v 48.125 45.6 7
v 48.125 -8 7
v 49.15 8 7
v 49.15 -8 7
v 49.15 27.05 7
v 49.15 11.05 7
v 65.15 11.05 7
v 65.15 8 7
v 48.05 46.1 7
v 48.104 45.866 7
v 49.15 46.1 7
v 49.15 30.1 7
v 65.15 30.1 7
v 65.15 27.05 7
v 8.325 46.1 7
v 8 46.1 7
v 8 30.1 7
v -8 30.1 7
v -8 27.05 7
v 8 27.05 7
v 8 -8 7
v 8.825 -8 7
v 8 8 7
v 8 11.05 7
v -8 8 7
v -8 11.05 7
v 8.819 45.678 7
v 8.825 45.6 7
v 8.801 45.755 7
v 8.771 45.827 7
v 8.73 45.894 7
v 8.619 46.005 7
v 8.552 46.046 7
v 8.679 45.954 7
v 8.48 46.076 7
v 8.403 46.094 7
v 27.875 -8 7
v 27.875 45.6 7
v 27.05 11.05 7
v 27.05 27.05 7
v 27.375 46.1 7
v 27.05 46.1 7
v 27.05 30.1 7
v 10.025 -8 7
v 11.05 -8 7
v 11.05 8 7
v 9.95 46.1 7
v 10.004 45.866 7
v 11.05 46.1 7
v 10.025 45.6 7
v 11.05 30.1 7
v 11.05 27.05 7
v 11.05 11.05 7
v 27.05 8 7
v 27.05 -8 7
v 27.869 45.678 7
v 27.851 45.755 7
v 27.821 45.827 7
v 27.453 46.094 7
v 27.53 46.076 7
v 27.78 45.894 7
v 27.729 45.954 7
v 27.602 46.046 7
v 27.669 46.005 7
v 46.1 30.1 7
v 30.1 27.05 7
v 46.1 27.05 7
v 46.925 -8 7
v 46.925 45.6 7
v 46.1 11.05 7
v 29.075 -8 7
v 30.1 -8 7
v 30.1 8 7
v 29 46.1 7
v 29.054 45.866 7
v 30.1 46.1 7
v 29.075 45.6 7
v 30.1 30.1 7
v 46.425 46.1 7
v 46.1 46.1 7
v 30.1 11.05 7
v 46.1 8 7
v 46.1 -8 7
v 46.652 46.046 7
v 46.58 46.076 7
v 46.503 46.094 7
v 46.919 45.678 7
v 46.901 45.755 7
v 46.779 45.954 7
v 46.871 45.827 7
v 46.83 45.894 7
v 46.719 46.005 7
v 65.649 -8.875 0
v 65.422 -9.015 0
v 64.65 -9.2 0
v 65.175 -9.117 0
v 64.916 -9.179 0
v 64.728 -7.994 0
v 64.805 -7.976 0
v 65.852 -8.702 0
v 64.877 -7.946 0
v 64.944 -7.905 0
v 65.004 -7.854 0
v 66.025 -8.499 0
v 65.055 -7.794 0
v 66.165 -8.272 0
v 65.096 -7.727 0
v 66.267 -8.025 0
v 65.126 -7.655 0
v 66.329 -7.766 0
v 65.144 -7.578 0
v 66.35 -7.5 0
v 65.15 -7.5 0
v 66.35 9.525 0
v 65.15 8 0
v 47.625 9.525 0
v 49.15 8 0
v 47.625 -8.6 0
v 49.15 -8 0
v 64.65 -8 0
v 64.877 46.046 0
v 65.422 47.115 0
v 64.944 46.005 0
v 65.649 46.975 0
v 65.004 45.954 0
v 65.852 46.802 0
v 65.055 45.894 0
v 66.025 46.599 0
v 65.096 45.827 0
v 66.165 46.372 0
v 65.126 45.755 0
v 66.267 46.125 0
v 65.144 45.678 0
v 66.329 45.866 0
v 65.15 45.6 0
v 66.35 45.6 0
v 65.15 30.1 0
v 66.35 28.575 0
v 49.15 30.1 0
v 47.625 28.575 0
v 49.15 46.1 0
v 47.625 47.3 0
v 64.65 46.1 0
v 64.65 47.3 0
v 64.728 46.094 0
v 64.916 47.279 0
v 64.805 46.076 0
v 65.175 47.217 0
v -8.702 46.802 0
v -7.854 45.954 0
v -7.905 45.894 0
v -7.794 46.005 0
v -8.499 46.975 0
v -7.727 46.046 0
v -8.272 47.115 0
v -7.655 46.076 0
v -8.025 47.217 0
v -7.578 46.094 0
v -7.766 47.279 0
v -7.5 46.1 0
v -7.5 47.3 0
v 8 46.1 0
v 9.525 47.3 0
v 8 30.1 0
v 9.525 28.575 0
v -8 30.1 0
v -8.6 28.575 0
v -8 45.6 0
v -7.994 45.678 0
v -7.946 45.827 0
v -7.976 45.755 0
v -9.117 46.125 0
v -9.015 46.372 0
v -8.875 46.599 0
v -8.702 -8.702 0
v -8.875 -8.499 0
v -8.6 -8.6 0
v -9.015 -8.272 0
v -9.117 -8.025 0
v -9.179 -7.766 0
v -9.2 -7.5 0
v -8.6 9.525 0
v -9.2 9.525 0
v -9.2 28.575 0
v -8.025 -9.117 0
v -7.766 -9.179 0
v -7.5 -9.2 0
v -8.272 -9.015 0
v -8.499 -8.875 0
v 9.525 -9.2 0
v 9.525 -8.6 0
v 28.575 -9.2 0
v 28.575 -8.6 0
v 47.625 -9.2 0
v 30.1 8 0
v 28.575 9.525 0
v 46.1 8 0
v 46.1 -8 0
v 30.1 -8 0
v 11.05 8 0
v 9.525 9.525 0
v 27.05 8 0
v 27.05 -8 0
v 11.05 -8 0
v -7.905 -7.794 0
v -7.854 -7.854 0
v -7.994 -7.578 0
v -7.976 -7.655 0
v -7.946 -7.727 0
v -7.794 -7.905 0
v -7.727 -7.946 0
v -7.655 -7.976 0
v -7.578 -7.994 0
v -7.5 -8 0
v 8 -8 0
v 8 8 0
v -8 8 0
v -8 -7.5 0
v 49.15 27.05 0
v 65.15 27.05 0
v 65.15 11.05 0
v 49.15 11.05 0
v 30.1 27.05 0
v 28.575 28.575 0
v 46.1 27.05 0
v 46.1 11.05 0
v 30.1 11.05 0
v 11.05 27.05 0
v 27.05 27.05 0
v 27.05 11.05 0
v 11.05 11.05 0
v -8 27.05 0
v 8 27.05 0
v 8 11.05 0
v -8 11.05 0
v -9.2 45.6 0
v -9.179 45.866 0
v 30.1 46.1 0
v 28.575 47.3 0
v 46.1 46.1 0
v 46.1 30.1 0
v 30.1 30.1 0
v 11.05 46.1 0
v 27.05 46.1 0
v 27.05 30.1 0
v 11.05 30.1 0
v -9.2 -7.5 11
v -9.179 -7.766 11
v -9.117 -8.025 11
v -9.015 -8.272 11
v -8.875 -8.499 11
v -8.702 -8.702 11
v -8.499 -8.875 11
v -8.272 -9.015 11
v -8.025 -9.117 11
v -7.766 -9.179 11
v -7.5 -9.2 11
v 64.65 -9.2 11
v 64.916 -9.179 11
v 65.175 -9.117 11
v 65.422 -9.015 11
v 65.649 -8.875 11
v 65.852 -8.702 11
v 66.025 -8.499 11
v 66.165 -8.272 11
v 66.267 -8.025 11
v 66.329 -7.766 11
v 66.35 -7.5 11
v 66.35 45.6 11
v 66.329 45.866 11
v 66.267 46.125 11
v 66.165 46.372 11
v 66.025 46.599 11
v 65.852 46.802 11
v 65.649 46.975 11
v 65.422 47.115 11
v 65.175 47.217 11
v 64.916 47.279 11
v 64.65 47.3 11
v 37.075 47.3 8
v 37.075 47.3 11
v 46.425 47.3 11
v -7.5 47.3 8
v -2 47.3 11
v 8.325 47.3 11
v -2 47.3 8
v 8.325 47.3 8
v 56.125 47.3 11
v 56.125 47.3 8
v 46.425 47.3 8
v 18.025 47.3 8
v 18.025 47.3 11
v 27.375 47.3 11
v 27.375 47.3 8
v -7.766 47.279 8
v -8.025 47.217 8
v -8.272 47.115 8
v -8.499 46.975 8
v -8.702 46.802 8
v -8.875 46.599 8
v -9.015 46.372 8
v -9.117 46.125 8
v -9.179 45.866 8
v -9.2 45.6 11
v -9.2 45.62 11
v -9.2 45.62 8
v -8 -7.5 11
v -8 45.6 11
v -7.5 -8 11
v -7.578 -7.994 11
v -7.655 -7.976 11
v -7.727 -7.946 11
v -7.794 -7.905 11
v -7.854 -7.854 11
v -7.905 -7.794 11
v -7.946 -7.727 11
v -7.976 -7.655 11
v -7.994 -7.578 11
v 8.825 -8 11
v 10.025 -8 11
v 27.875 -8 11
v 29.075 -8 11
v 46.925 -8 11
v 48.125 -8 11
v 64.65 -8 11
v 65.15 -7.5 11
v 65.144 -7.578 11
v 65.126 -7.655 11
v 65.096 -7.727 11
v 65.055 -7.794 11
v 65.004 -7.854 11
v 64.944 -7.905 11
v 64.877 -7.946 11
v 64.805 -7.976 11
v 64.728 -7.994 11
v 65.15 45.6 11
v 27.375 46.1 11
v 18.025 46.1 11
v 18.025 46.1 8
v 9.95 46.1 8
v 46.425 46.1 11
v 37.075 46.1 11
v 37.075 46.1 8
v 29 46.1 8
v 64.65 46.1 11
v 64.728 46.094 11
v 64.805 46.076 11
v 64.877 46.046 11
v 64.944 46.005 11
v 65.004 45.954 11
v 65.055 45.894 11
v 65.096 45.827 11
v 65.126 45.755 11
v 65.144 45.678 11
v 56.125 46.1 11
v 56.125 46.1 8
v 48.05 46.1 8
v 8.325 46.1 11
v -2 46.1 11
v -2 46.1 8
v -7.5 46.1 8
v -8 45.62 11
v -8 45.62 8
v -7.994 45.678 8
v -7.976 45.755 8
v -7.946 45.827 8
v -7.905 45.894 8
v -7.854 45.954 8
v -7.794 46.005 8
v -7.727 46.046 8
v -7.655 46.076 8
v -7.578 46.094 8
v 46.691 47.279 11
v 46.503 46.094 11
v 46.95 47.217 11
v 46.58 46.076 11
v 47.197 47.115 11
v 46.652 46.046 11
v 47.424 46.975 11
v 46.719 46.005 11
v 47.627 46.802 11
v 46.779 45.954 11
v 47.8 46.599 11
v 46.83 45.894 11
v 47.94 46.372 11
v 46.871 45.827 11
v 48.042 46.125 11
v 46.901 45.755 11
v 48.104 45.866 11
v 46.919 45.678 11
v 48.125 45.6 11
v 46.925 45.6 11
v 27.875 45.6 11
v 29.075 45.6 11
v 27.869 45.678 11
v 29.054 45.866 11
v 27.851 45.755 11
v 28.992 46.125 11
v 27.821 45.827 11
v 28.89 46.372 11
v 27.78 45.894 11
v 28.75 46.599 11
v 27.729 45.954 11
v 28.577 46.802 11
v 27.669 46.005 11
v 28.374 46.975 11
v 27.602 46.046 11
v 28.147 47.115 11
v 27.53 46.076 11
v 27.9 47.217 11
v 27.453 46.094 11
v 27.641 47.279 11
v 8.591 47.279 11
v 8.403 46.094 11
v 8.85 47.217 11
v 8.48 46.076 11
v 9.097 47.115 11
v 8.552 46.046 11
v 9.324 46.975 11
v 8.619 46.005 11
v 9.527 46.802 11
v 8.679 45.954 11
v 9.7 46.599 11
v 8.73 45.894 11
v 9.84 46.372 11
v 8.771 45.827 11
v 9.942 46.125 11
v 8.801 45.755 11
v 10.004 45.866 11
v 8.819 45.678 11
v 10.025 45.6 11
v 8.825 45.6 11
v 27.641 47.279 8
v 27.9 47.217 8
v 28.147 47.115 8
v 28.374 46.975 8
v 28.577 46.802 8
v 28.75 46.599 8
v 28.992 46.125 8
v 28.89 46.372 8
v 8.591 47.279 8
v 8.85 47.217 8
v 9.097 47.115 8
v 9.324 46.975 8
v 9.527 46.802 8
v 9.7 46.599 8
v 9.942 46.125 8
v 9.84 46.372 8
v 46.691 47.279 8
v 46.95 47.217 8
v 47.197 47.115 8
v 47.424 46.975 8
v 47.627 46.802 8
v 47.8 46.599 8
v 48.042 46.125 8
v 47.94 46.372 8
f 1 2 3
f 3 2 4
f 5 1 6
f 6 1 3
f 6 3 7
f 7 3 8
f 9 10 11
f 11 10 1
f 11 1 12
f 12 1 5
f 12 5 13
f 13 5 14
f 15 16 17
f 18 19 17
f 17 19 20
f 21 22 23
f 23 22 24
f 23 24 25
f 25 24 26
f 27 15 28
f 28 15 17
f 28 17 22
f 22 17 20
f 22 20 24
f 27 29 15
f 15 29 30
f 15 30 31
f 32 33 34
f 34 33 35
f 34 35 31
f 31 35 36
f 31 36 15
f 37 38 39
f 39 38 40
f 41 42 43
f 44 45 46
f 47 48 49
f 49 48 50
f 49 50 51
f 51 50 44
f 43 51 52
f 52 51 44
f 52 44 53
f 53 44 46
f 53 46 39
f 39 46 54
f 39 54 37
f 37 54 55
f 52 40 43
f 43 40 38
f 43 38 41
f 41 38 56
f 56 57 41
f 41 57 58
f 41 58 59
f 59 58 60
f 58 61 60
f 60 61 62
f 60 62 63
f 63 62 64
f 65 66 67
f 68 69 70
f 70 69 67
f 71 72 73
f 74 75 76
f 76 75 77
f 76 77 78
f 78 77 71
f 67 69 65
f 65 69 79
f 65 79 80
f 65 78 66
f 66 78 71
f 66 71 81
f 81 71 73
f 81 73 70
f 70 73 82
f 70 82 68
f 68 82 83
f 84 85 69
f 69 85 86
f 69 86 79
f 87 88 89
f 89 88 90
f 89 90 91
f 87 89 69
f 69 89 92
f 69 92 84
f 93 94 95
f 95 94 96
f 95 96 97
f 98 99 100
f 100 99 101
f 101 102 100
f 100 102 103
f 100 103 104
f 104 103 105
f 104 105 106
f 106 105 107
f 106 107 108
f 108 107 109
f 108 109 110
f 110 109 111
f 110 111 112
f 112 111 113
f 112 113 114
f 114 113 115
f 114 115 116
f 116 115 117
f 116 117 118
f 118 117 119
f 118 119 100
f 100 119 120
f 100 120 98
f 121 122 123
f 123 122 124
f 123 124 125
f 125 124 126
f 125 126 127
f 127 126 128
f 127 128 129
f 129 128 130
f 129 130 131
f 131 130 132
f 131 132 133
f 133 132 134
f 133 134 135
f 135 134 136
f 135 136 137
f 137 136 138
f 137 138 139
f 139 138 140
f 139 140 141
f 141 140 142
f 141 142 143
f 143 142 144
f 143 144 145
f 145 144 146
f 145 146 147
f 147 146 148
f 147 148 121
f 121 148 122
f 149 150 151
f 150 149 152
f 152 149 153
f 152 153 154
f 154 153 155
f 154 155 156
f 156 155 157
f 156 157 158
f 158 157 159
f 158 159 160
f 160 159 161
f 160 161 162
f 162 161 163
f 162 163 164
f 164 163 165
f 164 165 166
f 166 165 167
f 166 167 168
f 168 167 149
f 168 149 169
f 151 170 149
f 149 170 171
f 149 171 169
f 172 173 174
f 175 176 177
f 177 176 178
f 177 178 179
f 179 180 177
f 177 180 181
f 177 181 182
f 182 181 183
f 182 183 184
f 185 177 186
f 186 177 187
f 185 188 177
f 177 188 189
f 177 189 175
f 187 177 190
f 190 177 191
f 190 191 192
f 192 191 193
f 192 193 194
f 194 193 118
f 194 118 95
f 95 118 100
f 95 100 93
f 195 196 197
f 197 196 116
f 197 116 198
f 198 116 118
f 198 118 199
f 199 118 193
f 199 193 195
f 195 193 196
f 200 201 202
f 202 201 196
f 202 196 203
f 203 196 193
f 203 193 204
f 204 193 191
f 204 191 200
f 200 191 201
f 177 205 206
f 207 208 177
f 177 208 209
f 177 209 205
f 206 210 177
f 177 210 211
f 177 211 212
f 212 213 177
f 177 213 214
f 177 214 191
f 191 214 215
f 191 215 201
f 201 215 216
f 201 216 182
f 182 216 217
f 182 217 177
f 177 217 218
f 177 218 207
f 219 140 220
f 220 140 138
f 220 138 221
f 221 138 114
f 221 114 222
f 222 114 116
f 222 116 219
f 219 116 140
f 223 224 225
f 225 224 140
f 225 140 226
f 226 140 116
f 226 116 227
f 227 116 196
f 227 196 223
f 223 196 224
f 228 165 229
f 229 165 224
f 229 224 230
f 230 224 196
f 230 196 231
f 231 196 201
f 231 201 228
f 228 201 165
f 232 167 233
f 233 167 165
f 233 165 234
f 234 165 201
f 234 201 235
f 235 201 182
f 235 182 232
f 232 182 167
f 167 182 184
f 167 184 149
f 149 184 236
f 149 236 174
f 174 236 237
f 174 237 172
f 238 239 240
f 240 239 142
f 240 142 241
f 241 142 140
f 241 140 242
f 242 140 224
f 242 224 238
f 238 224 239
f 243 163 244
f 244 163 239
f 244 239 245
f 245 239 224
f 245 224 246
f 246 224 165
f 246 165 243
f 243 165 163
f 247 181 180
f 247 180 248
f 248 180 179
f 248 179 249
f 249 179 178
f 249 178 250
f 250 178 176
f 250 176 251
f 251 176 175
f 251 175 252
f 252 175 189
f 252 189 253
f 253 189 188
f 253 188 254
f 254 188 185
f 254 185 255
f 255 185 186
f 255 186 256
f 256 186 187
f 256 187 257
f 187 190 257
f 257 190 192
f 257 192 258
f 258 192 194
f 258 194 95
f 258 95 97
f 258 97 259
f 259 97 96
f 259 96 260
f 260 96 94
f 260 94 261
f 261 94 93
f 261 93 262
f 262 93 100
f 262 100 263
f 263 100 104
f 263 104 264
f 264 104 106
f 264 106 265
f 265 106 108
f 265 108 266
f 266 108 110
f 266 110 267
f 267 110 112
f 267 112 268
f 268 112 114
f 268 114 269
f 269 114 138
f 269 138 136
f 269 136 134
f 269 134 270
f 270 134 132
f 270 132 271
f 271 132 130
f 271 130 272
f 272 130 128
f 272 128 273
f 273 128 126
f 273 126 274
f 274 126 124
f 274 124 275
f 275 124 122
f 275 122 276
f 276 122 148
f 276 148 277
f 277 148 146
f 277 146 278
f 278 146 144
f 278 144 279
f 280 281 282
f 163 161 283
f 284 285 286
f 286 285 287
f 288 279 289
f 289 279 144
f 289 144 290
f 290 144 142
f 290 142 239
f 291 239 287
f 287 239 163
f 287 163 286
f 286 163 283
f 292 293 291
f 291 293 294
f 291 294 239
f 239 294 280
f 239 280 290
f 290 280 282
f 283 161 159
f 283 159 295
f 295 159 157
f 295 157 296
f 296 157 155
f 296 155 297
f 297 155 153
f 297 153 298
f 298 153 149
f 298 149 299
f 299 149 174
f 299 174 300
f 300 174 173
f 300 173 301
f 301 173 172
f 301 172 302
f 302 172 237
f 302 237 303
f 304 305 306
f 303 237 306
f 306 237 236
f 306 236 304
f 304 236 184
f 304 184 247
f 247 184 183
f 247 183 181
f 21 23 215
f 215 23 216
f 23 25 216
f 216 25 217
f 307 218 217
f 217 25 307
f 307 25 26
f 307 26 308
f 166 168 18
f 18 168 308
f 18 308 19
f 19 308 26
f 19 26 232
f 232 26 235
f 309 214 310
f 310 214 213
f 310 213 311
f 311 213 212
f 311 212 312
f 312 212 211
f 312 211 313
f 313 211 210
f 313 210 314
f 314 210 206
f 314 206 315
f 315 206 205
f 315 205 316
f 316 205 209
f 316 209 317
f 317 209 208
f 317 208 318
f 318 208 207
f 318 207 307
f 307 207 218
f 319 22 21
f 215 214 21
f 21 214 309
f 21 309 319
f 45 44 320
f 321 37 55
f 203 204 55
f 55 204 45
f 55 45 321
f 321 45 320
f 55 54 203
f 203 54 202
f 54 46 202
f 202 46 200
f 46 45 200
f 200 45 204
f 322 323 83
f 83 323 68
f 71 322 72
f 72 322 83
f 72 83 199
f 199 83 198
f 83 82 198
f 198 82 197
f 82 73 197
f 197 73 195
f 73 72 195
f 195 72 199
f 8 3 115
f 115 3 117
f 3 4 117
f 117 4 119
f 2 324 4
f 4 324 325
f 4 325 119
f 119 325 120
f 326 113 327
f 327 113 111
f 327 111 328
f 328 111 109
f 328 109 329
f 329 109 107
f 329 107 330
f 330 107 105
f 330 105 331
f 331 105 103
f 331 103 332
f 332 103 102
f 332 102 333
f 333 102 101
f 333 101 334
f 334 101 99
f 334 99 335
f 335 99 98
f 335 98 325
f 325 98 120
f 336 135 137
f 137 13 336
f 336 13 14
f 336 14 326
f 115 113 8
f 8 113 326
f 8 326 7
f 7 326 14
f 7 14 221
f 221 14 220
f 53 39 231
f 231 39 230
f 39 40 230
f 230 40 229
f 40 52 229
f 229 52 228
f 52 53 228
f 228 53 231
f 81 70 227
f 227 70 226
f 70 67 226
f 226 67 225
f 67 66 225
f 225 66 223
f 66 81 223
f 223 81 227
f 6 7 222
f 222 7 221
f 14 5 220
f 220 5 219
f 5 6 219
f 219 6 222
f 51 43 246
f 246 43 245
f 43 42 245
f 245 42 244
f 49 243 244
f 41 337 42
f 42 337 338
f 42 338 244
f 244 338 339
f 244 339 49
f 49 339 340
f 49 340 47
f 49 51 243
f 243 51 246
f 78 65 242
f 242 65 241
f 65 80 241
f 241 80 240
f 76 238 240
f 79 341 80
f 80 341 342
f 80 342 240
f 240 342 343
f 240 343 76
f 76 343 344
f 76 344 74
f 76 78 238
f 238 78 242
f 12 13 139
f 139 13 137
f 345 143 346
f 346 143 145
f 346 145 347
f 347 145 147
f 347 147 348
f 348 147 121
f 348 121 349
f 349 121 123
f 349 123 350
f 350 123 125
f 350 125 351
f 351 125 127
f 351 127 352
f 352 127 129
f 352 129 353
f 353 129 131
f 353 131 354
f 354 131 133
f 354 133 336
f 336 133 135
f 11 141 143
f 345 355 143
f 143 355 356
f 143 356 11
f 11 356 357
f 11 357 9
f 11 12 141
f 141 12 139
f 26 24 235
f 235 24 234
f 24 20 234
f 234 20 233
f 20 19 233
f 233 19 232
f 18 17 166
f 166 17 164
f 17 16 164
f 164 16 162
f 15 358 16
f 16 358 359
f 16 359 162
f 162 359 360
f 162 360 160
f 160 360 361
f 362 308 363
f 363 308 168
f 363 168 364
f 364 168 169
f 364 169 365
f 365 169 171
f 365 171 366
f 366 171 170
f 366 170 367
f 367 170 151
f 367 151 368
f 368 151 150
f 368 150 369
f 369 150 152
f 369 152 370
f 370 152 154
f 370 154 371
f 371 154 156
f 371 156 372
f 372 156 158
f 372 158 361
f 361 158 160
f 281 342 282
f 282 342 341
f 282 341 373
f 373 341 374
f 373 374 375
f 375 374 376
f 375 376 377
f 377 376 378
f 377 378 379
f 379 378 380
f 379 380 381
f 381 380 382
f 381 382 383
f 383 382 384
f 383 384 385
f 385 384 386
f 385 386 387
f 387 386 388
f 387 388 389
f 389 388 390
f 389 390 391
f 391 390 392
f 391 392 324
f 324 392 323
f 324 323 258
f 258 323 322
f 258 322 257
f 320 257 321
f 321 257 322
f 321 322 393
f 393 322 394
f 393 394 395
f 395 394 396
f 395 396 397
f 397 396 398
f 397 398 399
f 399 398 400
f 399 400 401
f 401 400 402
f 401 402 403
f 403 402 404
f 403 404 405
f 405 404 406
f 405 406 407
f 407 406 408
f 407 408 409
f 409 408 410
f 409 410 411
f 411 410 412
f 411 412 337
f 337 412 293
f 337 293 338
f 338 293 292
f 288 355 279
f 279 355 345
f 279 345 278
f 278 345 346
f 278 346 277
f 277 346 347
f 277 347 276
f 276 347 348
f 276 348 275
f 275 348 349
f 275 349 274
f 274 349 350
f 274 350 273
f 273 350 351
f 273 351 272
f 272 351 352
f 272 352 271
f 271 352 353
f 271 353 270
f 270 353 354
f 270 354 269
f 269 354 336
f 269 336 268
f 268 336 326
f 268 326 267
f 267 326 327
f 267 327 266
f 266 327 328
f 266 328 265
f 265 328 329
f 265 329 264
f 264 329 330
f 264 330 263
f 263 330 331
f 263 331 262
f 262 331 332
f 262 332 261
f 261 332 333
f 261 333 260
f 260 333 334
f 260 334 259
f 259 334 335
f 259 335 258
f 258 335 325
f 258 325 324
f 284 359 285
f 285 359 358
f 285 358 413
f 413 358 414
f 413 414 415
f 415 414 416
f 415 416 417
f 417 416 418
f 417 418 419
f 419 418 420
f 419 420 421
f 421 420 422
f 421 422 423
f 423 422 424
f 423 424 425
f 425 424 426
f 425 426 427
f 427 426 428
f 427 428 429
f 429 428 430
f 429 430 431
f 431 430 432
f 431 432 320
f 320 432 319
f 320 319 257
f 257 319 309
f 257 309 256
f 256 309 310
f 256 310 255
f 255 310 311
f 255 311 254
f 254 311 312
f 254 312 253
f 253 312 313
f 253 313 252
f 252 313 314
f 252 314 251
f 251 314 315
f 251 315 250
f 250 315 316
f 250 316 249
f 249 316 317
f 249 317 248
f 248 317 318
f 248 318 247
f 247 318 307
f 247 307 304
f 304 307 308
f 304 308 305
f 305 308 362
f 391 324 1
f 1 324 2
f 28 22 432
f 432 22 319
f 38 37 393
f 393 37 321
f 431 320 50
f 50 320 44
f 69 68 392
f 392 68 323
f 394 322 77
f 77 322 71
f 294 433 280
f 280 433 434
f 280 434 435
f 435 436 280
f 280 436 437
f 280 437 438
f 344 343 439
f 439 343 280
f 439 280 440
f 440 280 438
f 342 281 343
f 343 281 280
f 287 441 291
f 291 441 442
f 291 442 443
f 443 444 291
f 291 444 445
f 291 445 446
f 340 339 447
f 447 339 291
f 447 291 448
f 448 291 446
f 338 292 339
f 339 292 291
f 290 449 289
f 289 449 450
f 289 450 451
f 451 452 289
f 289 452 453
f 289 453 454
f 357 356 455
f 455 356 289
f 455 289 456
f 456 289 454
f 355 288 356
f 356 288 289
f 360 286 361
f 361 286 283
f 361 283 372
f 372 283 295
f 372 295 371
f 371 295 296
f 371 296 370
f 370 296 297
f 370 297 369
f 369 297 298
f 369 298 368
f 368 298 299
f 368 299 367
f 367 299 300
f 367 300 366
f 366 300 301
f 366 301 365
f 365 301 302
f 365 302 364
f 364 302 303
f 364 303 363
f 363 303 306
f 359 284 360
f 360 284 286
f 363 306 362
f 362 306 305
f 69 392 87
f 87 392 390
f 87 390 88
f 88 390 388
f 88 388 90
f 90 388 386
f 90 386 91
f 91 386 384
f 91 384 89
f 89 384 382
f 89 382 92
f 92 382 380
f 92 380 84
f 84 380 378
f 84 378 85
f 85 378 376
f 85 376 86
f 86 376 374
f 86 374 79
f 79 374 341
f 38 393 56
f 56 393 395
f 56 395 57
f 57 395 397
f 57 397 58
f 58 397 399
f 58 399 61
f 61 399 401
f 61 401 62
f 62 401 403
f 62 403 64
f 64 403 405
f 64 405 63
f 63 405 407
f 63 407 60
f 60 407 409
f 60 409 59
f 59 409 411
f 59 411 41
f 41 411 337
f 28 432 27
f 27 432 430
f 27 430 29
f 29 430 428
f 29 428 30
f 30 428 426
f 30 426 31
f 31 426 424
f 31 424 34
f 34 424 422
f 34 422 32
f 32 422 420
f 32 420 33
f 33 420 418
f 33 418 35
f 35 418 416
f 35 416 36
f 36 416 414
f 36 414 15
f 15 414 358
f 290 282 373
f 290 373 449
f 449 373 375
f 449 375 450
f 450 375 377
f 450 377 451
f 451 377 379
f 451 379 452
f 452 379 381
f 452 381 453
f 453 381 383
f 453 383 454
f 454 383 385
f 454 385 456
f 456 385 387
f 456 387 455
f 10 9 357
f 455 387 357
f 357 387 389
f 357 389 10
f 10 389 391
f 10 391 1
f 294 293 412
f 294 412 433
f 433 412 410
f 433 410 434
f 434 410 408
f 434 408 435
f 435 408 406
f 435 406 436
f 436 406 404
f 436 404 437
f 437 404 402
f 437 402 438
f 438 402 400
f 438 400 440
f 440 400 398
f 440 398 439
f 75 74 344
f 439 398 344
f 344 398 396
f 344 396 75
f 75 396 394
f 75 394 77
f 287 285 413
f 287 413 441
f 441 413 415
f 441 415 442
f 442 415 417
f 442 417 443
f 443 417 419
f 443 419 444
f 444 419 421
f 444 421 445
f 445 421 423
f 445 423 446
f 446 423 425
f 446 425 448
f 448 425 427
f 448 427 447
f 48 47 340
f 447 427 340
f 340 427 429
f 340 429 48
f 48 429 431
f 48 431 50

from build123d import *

# Parameters (mm, degrees)
SKICA1_W                 = 16
SKICA1_H                 = 16
P_IDAT_VYSUNUT_M1_DEPTH  = 7
SKICA2_W                 = 17.85
SKICA2_H                 = 54.1
P_IDAT_VYSUNUT_M2_DEPTH  = 4
SKICA3_W                 = 7.868538626
SKICA3_H                 = 3.04290642
SKICA3_W_2               = 8
SKICA3_H_2               = 2.219116854
SKICA3_H_3               = 2.772139553
SKICA3_H_4               = 2.562795671
ODEBRAT_VYSUNUT_M1_DEPTH = 3
ZAOBLIT1_R               = 0.5
ZAOBLIT2_R               = 1.7


with BuildPart() as part:
    # Skica1 → Přidat vysunutím1 (new body)
    with BuildSketch(Plane.XY):
        with BuildLine():
            Line((-7.5, 47.3), (64.65, 47.3))
            ThreePointArc((64.65, 47.3), (65.852081528, 46.802081528), (66.35, 45.6))
            Line((66.35, 45.6), (66.35, -7.5))
            ThreePointArc((66.35, -7.5), (65.852081528, -8.702081528), (64.65, -9.2))
            Line((64.65, -9.2), (-7.5, -9.2))
            ThreePointArc((-7.5, -9.2), (-8.702081528, -8.702081528), (-9.2, -7.5))
            Line((-9.2, -7.5), (-9.2, 45.6))
            ThreePointArc((-9.2, 45.6), (-8.702081528, 46.802081528), (-7.5, 47.3))
        make_face()
        with Locations((19.05, 0)):
            Rectangle(SKICA1_W, SKICA1_H, mode=Mode.SUBTRACT)
        with BuildLine():
            Line((-8, 8), (8, 8))
            Line((8, 8), (8, -8))
            Line((8, -8), (-7.5, -8))
            ThreePointArc((-7.5, -8), (-7.853553391, -7.853553391), (-8, -7.5))
            Line((-8, -7.5), (-8, 8))
        make_face(mode=Mode.SUBTRACT)
        with Locations((38.1, 0)):
            Rectangle(SKICA1_W, SKICA1_H, mode=Mode.SUBTRACT)
        with BuildLine():
            Line((49.15, 8), (49.15, -8))
            Line((49.15, -8), (64.65, -8))
            ThreePointArc((64.65, -8), (65.003553391, -7.853553391), (65.15, -7.5))
            Line((65.15, -7.5), (65.15, 8))
            Line((65.15, 8), (49.15, 8))
        make_face(mode=Mode.SUBTRACT)
        with Locations((19.05, 19.05)):
            Rectangle(SKICA1_W, SKICA1_H, mode=Mode.SUBTRACT)
        with Locations((38.1, 19.05)):
            Rectangle(SKICA1_W, SKICA1_H, mode=Mode.SUBTRACT)
        with Locations((57.15, 19.05)):
            Rectangle(SKICA1_W, SKICA1_H, mode=Mode.SUBTRACT)
        with Locations((19.05, 38.1)):
            Rectangle(SKICA1_W, SKICA1_H, mode=Mode.SUBTRACT)
        with Locations((38.1, 38.1)):
            Rectangle(SKICA1_W, SKICA1_H, mode=Mode.SUBTRACT)
        with BuildLine():
            Line((49.15, 46.1), (49.15, 30.1))
            Line((49.15, 30.1), (65.15, 30.1))
            Line((65.15, 30.1), (65.15, 45.6))
            ThreePointArc((65.15, 45.6), (65.003553391, 45.953553391), (64.65, 46.1))
            Line((64.65, 46.1), (49.15, 46.1))
        make_face(mode=Mode.SUBTRACT)
        with Locations((0, 19.05)):
            Rectangle(SKICA1_W, SKICA1_H, mode=Mode.SUBTRACT)
        with BuildLine():
            Line((-8, 45.6), (-8, 30.1))
            Line((-8, 30.1), (8, 30.1))
            Line((8, 30.1), (8, 46.1))
            Line((8, 46.1), (-7.5, 46.1))
            ThreePointArc((-7.5, 46.1), (-7.853553391, 45.953553391), (-8, 45.6))
        make_face(mode=Mode.SUBTRACT)
    extrude(amount=P_IDAT_VYSUNUT_M1_DEPTH)

    # Skica2 → Přidat vysunutím2 (add)
    with BuildSketch(Plane.XY.offset(7)):
        with BuildLine():
            Line((-7.5, -9.2), (64.65, -9.2))
            ThreePointArc((64.65, -9.2), (65.852081528, -8.702081528), (66.35, -7.5))
            Line((66.35, -7.5), (66.35, 45.6))
            ThreePointArc((66.35, 45.6), (65.852081528, 46.802081528), (64.65, 47.3))
            Line((64.65, 47.3), (-7.5, 47.3))
            ThreePointArc((-7.5, 47.3), (-8.702081528, 46.802081528), (-9.2, 45.6))
            Line((-9.2, 45.6), (-9.2, -7.5))
            ThreePointArc((-9.2, -7.5), (-8.702081528, -8.702081528), (-7.5, -9.2))
        make_face()
        with BuildLine():
            Line((64.65, 46.1), (48.125, 46.1))
            Line((48.125, 46.1), (48.125, -8))
            Line((48.125, -8), (64.65, -8))
            ThreePointArc((64.65, -8), (65.003553391, -7.853553391), (65.15, -7.5))
            Line((65.15, -7.5), (65.15, 45.6))
            ThreePointArc((65.15, 45.6), (65.003553391, 45.953553391), (64.65, 46.1))
        make_face(mode=Mode.SUBTRACT)
        with BuildLine():
            Line((-8, 45.6), (-8, -7.5))
            ThreePointArc((-8, -7.5), (-7.853553391, -7.853553391), (-7.5, -8))
            Line((-7.5, -8), (8.825, -8))
            Line((8.825, -8), (8.825, 46.1))
            Line((8.825, 46.1), (-7.5, 46.1))
            ThreePointArc((-7.5, 46.1), (-7.853553391, 45.953553391), (-8, 45.6))
        make_face(mode=Mode.SUBTRACT)
        with Locations((18.95, 19.05)):
            Rectangle(SKICA2_W, SKICA2_H, mode=Mode.SUBTRACT)
        with Locations((38, 19.05)):
            Rectangle(SKICA2_W, SKICA2_H, mode=Mode.SUBTRACT)
    extrude(amount=P_IDAT_VYSUNUT_M2_DEPTH)

    # Skica3 → Odebrat vysunutím1 (cut)
    with BuildSketch(Plane.XY.offset(11)):
        with Locations((-5.934269313, 47.141342461)):
            Rectangle(SKICA3_W, SKICA3_H)
        with Locations((14.025, 47.209558427)):
            Rectangle(SKICA3_W_2, SKICA3_H_2)
        with Locations((33.075, 47.486069777)):
            Rectangle(SKICA3_W_2, SKICA3_H_3)
        with Locations((52.125, 47.381397836)):
            Rectangle(SKICA3_W_2, SKICA3_H_4)
    extrude(amount=-ODEBRAT_VYSUNUT_M1_DEPTH, mode=Mode.SUBTRACT)

    # Zaoblit1
    zaoblit1_edges = [part.edges().sort_by_distance(p)[0] for p in [
        (8.825, 46.1, 9),
        (27.875, 46.1, 9),
        (46.925, 46.1, 9),
    ]]
    fillet(zaoblit1_edges, radius=ZAOBLIT1_R)

    # Zaoblit2
    # the kernel refuses this fillet: 1.7 mm, written as the material it takes off along each edge
    with BuildSketch(Plane(origin=(48.125, 47.3, 3.75), x_dir=(-1, 0, 0), z_dir=(0, 0, 1))) as zaoblit2_piece_1_section:
        with BuildLine():
            CenterArc((ZAOBLIT2_R, ZAOBLIT2_R), ZAOBLIT2_R, 180, 90)
            Line((0, ZAOBLIT2_R), (0, 0))
            Line((0, 0), (ZAOBLIT2_R, 0))
        make_face()
    zaoblit2_piece_1 = extrude(amount=11.5, mode=Mode.PRIVATE)
    zaoblit2_piece_1 = split(zaoblit2_piece_1, bisect_by=Plane(origin=(48.125338214, 45.903004102, 8), z_dir=(0, 0, -1)), keep=Keep.TOP, mode=Mode.PRIVATE)
    zaoblit2_piece_1 = split(zaoblit2_piece_1, bisect_by=Plane(origin=(48.125338214, 46.1, 7.5), z_dir=(0, -1, 0)), keep=Keep.TOP, mode=Mode.PRIVATE)
    zaoblit2_piece_1 = split(zaoblit2_piece_1, bisect_by=Plane(origin=(48.125338214, 45.903004102, 7), z_dir=(0, 0, 1)), keep=Keep.TOP, mode=Mode.PRIVATE)
    add(zaoblit2_piece_1, mode=Mode.SUBTRACT)
    with BuildSketch(Plane(origin=(48.125, 47.3, 8), x_dir=(-1, 0, 0), z_dir=(0, 0, 1))) as zaoblit2_piece_2_section:
        with BuildLine():
            CenterArc((ZAOBLIT2_R, ZAOBLIT2_R), ZAOBLIT2_R, 180, 90)
            Line((0, ZAOBLIT2_R), (0, 0))
            Line((0, 0), (ZAOBLIT2_R, 0))
        make_face()
    zaoblit2_piece_2 = extrude(amount=7.25, mode=Mode.PRIVATE)
    zaoblit2_piece_2 = split(zaoblit2_piece_2, bisect_by=Plane(origin=(47.724111446, 46.1, 11.625), z_dir=(0, 1, 0)), keep=Keep.TOP, mode=Mode.PRIVATE)
    add(zaoblit2_piece_2, mode=Mode.SUBTRACT)
    with BuildSketch(Plane(origin=(48.125, 47.3, 8), x_dir=(-1, 0, 0), z_dir=(0, 0, 1))) as zaoblit2_piece_3_section:
        with BuildLine():
            CenterArc((ZAOBLIT2_R, ZAOBLIT2_R), ZAOBLIT2_R, 180, 90)
            Line((0, ZAOBLIT2_R), (0, 0))
            Line((0, 0), (ZAOBLIT2_R, 0))
        make_face()
    zaoblit2_piece_3 = extrude(amount=7.25, mode=Mode.PRIVATE)
    zaoblit2_piece_3 = split(zaoblit2_piece_3, bisect_by=Plane(origin=(48.125338214, 46.1, 11.625), z_dir=(0, -1, 0)), keep=Keep.TOP, mode=Mode.PRIVATE)
    add(zaoblit2_piece_3, mode=Mode.SUBTRACT)
    with BuildSketch(Plane(origin=(29.075, 47.3, 3.75), x_dir=(-1, 0, 0), z_dir=(0, 0, 1))) as zaoblit2_piece_4_section:
        with BuildLine():
            CenterArc((ZAOBLIT2_R, ZAOBLIT2_R), ZAOBLIT2_R, 180, 90)
            Line((0, ZAOBLIT2_R), (0, 0))
            Line((0, 0), (ZAOBLIT2_R, 0))
        make_face()
    zaoblit2_piece_4 = extrude(amount=11.5, mode=Mode.PRIVATE)
    zaoblit2_piece_4 = split(zaoblit2_piece_4, bisect_by=Plane(origin=(29.075338214, 46.1, 7.5), z_dir=(0, -1, 0)), keep=Keep.TOP, mode=Mode.PRIVATE)
    zaoblit2_piece_4 = split(zaoblit2_piece_4, bisect_by=Plane(origin=(29.075338214, 45.903004102, 8), z_dir=(0, 0, -1)), keep=Keep.TOP, mode=Mode.PRIVATE)
    zaoblit2_piece_4 = split(zaoblit2_piece_4, bisect_by=Plane(origin=(29.075338214, 45.903004102, 7), z_dir=(0, 0, 1)), keep=Keep.TOP, mode=Mode.PRIVATE)
    add(zaoblit2_piece_4, mode=Mode.SUBTRACT)
    with BuildSketch(Plane(origin=(29.075, 47.3, 8), x_dir=(-1, 0, 0), z_dir=(0, 0, 1))) as zaoblit2_piece_5_section:
        with BuildLine():
            CenterArc((ZAOBLIT2_R, ZAOBLIT2_R), ZAOBLIT2_R, 180, 90)
            Line((0, ZAOBLIT2_R), (0, 0))
            Line((0, 0), (ZAOBLIT2_R, 0))
        make_face()
    zaoblit2_piece_5 = extrude(amount=7.25, mode=Mode.PRIVATE)
    zaoblit2_piece_5 = split(zaoblit2_piece_5, bisect_by=Plane(origin=(28.674111446, 46.1, 11.625), z_dir=(0, 1, 0)), keep=Keep.TOP, mode=Mode.PRIVATE)
    add(zaoblit2_piece_5, mode=Mode.SUBTRACT)
    with BuildSketch(Plane(origin=(29.075, 47.3, 8), x_dir=(-1, 0, 0), z_dir=(0, 0, 1))) as zaoblit2_piece_6_section:
        with BuildLine():
            CenterArc((ZAOBLIT2_R, ZAOBLIT2_R), ZAOBLIT2_R, 180, 90)
            Line((0, ZAOBLIT2_R), (0, 0))
            Line((0, 0), (ZAOBLIT2_R, 0))
        make_face()
    zaoblit2_piece_6 = extrude(amount=7.25, mode=Mode.PRIVATE)
    zaoblit2_piece_6 = split(zaoblit2_piece_6, bisect_by=Plane(origin=(29.075338214, 46.1, 11.625), z_dir=(0, -1, 0)), keep=Keep.TOP, mode=Mode.PRIVATE)
    add(zaoblit2_piece_6, mode=Mode.SUBTRACT)
    with BuildSketch(Plane(origin=(10.025, 47.3, 3.75), x_dir=(-1, 0, 0), z_dir=(0, 0, 1))) as zaoblit2_piece_7_section:
        with BuildLine():
            CenterArc((ZAOBLIT2_R, ZAOBLIT2_R), ZAOBLIT2_R, 180, 90)
            Line((0, ZAOBLIT2_R), (0, 0))
            Line((0, 0), (ZAOBLIT2_R, 0))
        make_face()
    zaoblit2_piece_7 = extrude(amount=11.5, mode=Mode.PRIVATE)
    zaoblit2_piece_7 = split(zaoblit2_piece_7, bisect_by=Plane(origin=(10.025338214, 46.1, 7.5), z_dir=(0, -1, 0)), keep=Keep.TOP, mode=Mode.PRIVATE)
    zaoblit2_piece_7 = split(zaoblit2_piece_7, bisect_by=Plane(origin=(10.025338214, 45.903004102, 8), z_dir=(0, 0, -1)), keep=Keep.TOP, mode=Mode.PRIVATE)
    zaoblit2_piece_7 = split(zaoblit2_piece_7, bisect_by=Plane(origin=(10.025338214, 45.903004102, 7), z_dir=(0, 0, 1)), keep=Keep.TOP, mode=Mode.PRIVATE)
    add(zaoblit2_piece_7, mode=Mode.SUBTRACT)
    with BuildSketch(Plane(origin=(10.025, 47.3, 8), x_dir=(-1, 0, 0), z_dir=(0, 0, 1))) as zaoblit2_piece_8_section:
        with BuildLine():
            CenterArc((ZAOBLIT2_R, ZAOBLIT2_R), ZAOBLIT2_R, 180, 90)
            Line((0, ZAOBLIT2_R), (0, 0))
            Line((0, 0), (ZAOBLIT2_R, 0))
        make_face()
    zaoblit2_piece_8 = extrude(amount=7.25, mode=Mode.PRIVATE)
    zaoblit2_piece_8 = split(zaoblit2_piece_8, bisect_by=Plane(origin=(9.624111446, 46.1, 11.625), z_dir=(0, 1, 0)), keep=Keep.TOP, mode=Mode.PRIVATE)
    add(zaoblit2_piece_8, mode=Mode.SUBTRACT)
    with BuildSketch(Plane(origin=(10.025, 47.3, 8), x_dir=(-1, 0, 0), z_dir=(0, 0, 1))) as zaoblit2_piece_9_section:
        with BuildLine():
            CenterArc((ZAOBLIT2_R, ZAOBLIT2_R), ZAOBLIT2_R, 180, 90)
            Line((0, ZAOBLIT2_R), (0, 0))
            Line((0, 0), (ZAOBLIT2_R, 0))
        make_face()
    zaoblit2_piece_9 = extrude(amount=7.25, mode=Mode.PRIVATE)
    zaoblit2_piece_9 = split(zaoblit2_piece_9, bisect_by=Plane(origin=(10.025338214, 46.1, 11.625), z_dir=(0, -1, 0)), keep=Keep.TOP, mode=Mode.PRIVATE)
    add(zaoblit2_piece_9, mode=Mode.SUBTRACT)


solid = part.part
